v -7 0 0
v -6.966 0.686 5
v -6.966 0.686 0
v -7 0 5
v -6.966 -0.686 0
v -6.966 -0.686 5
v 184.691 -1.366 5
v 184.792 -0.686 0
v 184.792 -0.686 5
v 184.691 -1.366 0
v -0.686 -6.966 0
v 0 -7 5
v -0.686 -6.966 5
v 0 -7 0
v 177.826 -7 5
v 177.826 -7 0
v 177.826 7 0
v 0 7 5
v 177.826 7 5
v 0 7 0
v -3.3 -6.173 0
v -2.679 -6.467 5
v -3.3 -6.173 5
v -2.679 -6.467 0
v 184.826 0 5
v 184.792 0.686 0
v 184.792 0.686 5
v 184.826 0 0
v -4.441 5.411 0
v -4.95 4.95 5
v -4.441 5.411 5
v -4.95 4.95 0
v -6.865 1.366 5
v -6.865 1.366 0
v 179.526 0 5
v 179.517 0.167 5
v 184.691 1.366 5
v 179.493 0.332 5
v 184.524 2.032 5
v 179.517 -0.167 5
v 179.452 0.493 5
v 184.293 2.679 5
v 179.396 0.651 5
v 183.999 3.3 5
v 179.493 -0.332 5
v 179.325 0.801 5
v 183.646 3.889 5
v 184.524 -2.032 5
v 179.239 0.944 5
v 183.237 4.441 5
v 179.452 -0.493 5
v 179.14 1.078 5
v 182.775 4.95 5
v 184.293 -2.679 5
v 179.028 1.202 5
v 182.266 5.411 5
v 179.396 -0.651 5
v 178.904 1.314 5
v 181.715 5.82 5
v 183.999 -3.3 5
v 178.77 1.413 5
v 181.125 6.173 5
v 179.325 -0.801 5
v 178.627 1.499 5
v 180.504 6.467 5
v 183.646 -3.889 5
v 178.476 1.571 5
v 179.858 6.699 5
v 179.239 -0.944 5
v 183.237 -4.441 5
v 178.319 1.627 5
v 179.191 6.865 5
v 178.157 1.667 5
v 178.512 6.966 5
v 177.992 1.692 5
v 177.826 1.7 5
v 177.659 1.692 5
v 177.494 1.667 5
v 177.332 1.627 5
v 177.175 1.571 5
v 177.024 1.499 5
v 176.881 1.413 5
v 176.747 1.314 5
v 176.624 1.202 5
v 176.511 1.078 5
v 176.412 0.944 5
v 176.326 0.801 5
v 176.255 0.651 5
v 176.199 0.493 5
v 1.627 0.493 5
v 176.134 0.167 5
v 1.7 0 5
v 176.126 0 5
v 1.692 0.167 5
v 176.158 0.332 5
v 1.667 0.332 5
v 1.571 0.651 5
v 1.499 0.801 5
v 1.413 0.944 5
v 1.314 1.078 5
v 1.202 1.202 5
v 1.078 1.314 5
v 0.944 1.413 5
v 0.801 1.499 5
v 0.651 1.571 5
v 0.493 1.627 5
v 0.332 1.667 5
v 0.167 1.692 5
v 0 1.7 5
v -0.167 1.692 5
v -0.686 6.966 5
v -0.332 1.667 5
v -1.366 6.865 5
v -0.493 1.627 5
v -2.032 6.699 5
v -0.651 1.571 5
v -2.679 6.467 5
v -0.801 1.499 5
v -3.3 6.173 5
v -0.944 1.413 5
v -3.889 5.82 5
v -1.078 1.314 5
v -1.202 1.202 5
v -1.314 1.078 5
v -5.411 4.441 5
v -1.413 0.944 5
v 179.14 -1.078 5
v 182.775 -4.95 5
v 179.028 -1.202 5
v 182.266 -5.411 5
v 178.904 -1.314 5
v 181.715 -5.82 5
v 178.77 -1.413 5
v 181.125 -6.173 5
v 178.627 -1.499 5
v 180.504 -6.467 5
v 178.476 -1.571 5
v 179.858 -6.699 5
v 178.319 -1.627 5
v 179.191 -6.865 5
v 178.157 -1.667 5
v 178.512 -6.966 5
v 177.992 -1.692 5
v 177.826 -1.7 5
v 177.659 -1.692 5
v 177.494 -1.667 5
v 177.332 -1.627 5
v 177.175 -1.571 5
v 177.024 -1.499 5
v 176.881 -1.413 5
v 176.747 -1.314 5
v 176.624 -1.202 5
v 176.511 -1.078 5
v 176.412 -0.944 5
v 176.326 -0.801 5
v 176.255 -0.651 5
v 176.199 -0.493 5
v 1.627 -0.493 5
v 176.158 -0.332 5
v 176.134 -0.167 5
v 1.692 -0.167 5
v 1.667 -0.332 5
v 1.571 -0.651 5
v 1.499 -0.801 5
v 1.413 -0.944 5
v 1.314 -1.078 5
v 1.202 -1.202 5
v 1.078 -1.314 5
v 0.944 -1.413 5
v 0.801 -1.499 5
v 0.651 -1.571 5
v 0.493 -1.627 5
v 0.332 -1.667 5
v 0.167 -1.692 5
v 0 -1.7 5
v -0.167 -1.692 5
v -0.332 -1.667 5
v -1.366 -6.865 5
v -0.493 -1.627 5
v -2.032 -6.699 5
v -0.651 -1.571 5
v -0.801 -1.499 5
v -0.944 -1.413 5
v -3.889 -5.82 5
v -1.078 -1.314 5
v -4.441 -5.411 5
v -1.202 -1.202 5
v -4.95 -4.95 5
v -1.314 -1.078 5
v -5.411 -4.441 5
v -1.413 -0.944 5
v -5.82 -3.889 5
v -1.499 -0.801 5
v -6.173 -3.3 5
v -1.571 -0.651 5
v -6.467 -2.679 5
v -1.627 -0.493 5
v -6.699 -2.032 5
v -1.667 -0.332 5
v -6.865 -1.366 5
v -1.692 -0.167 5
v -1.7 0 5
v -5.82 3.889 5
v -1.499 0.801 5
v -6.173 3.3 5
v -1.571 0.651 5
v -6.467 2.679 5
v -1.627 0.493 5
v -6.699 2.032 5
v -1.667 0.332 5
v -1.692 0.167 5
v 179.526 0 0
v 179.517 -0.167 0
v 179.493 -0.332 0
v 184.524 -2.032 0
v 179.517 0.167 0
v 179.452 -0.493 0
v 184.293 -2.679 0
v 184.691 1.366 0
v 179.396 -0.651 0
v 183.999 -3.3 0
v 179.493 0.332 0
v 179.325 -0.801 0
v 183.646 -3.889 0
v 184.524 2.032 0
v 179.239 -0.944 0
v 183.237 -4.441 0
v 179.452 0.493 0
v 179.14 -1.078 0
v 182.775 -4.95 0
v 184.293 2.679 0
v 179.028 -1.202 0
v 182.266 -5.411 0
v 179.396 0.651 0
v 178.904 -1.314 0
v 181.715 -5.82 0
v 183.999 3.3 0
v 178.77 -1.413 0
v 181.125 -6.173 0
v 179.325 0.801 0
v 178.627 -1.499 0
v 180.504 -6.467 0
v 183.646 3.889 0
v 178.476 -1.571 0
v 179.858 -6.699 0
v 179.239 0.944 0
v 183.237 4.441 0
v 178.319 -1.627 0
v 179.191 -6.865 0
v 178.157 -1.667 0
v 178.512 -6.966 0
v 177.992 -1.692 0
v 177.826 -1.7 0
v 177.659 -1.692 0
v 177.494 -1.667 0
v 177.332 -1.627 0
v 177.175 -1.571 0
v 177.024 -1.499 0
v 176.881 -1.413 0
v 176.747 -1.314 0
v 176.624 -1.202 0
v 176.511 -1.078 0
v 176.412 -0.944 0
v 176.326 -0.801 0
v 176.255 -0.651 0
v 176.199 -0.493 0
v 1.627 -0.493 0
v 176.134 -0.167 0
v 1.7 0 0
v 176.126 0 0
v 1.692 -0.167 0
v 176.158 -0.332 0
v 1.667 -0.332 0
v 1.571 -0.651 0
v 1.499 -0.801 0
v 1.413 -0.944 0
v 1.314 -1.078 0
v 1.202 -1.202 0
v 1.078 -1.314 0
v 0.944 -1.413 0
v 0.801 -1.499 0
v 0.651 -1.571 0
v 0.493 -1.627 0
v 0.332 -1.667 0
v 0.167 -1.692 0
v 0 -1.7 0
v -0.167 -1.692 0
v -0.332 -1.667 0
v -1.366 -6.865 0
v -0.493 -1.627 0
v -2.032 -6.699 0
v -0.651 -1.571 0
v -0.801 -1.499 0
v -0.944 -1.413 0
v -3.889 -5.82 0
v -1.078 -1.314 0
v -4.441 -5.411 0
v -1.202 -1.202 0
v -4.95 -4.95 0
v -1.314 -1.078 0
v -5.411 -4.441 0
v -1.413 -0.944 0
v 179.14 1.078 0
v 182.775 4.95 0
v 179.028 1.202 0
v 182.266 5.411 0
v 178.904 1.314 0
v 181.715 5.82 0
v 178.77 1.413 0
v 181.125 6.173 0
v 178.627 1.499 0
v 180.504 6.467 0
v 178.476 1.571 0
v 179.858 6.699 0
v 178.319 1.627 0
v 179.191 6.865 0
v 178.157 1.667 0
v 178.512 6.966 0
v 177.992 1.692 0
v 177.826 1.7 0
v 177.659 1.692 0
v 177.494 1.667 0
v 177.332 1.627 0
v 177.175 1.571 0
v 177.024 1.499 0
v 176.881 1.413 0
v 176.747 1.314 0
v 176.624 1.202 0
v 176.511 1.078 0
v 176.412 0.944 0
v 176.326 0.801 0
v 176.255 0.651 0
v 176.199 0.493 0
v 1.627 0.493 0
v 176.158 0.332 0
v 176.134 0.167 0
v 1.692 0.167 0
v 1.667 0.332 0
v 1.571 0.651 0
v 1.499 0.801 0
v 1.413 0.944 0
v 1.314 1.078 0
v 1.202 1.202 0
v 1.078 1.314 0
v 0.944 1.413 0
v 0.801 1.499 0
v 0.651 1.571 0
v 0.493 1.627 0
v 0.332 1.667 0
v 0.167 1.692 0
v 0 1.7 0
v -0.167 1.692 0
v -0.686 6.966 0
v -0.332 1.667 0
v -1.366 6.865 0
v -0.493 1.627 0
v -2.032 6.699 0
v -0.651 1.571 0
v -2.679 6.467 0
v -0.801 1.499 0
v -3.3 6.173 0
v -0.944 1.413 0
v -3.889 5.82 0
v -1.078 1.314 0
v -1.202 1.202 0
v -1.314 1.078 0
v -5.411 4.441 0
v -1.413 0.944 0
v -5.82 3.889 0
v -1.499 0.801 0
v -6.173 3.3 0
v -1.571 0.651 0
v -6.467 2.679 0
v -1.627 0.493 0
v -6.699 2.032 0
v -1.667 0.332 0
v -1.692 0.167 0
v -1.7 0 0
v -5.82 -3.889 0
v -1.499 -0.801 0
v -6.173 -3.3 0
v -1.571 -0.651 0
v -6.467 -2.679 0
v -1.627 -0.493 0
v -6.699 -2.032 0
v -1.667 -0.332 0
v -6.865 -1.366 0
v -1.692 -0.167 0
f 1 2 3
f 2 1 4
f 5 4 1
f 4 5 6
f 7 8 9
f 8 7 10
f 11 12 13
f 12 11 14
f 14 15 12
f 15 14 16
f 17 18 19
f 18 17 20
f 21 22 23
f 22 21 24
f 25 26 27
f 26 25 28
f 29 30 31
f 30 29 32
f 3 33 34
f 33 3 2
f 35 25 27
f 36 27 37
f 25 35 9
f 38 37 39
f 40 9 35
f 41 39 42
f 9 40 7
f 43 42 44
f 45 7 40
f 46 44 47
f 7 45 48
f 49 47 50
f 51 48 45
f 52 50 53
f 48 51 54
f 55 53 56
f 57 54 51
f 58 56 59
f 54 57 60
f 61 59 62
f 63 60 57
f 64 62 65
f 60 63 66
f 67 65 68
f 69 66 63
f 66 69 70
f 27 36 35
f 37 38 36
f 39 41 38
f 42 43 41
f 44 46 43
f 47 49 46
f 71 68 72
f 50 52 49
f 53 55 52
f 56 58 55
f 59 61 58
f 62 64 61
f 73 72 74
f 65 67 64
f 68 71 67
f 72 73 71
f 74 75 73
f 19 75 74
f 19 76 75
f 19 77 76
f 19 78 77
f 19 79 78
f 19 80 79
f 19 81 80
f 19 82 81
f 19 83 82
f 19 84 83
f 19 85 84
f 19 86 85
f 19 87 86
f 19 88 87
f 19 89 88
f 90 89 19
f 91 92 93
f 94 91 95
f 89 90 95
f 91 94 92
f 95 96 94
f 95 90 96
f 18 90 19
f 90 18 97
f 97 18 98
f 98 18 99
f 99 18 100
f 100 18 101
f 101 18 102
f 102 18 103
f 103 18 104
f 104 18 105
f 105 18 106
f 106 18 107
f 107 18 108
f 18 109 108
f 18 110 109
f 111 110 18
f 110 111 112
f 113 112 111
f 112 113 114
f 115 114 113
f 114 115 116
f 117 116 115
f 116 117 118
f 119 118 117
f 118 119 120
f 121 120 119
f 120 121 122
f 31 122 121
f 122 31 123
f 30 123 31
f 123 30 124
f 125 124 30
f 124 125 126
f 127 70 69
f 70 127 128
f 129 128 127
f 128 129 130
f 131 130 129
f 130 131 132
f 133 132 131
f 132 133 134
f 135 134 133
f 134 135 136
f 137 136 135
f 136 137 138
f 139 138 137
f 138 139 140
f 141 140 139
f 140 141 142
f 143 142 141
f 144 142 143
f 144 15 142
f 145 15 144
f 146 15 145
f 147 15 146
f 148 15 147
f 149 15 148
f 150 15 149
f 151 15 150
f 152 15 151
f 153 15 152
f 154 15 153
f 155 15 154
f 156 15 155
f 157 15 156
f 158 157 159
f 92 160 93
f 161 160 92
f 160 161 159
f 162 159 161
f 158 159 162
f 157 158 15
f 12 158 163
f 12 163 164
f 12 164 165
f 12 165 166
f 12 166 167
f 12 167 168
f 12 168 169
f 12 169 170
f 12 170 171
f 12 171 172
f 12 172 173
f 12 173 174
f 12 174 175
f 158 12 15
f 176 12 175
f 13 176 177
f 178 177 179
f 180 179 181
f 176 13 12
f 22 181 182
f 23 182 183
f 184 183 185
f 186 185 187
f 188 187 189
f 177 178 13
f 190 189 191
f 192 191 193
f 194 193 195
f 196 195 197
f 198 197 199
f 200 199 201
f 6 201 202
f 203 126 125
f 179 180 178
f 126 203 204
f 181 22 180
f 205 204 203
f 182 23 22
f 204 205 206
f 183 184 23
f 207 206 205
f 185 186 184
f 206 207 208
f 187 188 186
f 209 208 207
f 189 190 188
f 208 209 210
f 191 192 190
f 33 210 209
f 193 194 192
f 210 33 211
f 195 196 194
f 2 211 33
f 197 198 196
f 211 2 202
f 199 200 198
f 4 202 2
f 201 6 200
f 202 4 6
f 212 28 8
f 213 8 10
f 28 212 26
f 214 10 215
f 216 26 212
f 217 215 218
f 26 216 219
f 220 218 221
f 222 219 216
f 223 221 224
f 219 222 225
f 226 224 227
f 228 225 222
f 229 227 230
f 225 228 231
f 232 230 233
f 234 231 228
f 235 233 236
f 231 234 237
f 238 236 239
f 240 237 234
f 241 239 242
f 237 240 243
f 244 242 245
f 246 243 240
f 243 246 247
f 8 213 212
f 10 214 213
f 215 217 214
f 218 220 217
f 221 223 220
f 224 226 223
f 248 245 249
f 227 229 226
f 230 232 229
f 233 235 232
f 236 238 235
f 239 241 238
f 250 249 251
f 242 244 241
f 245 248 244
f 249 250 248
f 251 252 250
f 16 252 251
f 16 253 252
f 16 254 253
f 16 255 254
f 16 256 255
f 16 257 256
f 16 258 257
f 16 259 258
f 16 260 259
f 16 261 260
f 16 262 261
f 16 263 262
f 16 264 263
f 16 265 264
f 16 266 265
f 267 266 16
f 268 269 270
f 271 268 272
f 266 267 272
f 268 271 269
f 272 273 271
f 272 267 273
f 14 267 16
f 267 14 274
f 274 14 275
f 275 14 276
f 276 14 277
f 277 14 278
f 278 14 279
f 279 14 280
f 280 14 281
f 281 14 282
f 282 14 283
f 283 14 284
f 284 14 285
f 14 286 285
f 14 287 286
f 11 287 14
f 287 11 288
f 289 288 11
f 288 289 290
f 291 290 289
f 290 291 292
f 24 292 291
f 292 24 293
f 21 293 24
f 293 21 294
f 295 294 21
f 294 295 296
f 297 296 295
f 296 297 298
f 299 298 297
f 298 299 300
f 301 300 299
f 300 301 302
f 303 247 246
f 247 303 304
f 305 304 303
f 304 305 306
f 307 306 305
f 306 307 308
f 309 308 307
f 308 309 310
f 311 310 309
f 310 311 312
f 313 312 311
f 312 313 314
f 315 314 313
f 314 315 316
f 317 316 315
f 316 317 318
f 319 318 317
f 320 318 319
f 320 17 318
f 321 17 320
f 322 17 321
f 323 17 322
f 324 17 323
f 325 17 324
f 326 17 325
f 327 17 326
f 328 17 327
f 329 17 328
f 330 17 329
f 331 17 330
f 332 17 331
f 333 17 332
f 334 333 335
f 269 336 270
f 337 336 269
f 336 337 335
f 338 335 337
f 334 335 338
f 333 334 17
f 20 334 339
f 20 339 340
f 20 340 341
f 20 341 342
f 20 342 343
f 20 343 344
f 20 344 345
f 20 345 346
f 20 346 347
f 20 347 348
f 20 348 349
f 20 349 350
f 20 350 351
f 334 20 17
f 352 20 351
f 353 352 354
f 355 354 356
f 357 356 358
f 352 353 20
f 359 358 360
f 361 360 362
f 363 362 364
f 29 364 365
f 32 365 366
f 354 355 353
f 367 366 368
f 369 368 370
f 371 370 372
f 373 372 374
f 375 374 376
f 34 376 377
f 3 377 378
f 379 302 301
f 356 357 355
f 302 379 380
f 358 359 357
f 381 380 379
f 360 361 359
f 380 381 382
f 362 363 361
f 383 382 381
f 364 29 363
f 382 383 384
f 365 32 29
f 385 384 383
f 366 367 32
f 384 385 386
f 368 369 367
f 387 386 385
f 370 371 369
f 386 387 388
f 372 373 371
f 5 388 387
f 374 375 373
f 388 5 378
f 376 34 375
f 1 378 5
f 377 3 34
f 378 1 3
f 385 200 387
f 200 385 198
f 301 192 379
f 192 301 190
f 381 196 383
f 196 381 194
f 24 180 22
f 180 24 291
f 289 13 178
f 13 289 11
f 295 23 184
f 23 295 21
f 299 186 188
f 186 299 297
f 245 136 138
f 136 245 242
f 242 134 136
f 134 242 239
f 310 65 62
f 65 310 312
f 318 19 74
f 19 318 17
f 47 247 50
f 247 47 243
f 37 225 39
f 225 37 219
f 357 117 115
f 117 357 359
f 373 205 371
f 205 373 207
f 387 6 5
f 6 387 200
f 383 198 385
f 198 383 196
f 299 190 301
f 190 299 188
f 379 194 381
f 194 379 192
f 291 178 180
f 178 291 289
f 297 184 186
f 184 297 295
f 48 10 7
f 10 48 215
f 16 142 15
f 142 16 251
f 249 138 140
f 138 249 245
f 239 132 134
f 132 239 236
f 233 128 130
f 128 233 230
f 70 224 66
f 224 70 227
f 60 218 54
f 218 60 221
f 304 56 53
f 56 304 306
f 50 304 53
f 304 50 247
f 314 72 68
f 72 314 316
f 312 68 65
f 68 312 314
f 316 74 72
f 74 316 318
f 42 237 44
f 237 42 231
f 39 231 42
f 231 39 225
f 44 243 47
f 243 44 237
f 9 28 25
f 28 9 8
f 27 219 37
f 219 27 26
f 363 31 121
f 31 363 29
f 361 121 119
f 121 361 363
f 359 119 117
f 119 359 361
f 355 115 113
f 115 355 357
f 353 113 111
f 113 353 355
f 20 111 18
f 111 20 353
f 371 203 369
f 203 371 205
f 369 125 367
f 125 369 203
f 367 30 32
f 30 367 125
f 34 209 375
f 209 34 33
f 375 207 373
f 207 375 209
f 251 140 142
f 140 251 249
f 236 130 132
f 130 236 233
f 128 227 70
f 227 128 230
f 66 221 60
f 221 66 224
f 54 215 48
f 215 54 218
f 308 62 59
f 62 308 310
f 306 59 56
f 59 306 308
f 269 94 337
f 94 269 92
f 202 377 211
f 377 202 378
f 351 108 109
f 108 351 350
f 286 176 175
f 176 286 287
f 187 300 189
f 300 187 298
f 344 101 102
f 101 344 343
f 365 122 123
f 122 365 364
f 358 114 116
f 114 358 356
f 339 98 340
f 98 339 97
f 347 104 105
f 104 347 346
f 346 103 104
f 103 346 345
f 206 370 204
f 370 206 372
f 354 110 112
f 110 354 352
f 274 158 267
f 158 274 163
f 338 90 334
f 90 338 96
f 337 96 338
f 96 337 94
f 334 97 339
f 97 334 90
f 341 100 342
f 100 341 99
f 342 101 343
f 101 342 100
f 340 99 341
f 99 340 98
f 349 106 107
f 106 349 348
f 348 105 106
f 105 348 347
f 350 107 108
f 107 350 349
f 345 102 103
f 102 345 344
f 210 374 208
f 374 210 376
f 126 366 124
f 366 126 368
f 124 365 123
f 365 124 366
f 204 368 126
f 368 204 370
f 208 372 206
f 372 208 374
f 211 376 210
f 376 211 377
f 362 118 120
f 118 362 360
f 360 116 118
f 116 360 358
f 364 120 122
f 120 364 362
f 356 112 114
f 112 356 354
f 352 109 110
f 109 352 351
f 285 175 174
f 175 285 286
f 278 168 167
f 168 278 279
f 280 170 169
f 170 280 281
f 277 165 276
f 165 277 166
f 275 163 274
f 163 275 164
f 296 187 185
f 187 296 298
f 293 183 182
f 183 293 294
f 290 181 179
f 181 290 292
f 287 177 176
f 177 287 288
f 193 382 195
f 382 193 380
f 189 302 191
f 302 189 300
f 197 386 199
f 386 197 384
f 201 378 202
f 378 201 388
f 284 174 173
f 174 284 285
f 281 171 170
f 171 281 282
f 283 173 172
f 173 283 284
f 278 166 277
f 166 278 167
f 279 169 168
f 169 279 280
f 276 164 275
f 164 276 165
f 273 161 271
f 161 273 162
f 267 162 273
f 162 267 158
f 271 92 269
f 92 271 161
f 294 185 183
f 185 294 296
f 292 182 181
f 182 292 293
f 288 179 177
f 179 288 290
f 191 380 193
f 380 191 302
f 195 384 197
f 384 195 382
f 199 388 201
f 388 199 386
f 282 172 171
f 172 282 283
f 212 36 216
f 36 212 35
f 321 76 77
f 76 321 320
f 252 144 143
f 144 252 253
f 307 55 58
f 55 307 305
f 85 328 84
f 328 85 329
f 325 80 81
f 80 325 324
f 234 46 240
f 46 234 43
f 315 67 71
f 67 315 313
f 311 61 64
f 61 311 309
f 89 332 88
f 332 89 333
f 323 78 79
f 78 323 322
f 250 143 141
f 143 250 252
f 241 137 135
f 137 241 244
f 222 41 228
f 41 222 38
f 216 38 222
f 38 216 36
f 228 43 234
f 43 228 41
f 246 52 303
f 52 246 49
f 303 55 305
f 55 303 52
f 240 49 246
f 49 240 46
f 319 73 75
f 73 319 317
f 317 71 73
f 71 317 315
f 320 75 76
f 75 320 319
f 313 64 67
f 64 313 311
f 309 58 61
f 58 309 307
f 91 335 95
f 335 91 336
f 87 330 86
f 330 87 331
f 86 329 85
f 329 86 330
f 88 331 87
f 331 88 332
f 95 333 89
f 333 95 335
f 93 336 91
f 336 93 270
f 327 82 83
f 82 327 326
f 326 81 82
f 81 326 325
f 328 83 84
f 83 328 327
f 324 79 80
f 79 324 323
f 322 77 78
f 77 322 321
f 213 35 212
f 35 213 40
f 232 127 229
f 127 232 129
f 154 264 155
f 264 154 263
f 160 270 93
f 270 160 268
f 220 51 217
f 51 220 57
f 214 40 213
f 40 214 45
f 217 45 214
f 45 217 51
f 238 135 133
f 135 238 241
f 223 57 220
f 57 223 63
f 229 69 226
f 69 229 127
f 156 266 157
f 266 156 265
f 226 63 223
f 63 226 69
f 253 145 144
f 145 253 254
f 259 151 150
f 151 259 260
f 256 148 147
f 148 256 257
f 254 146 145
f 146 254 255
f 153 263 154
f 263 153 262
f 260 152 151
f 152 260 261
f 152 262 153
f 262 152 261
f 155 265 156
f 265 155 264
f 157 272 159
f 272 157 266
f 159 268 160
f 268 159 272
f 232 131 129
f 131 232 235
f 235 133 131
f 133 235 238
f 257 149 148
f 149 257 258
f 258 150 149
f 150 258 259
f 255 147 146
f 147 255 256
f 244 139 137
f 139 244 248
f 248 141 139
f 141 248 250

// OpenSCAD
// =========================================================
// STRUT — diagonal brace, PRINT 2 OFF
// Runs from the box's upper left/right standoff down to the
// eyelet tab at the catwalk's tip.
//
// Drawn flat in the XY plane for printing: lay it on the bed as
// modelled, no supports, no rotation needed.
//
// Hole-to-hole span is derived from the box and catwalk numbers
// below, so if either part changes, update them here to match.
// =========================================================

$fn = 64;
eps = 0.01;

// --- Geometry it has to span (must match box.scad / catwalk.scad) ---
outer_y = 81.13;      // box.scad
so_y    = outer_y - 12.0;   // standoff height on the box
so_z    = 10.0;             // standoff position along the tube axis

pad_t   = 6.0;        // box.scad
plate_t = 9.0;        // catwalk.scad
arm_len = 158.0;      // catwalk.scad
plate_ymid = -pad_t - plate_t / 2;
eye_z   = -(arm_len - 9.0);

// --- Strap ---
strap_w = 14.0;       // width
strap_t = 5.0;        // thickness
strap_end = 9.0;      // material beyond each hole centre
hole_d  = 3.4;        // M3 clearance

span = sqrt(pow(plate_ymid - so_y, 2) + pow(eye_z - so_z, 2));

echo("hole-to-hole span", span);
echo("strap overall length", span + strap_end * 2);
echo("bed check: needs <= 200mm on the long axis");

module strap() {
    difference() {
        hull() {
            cylinder(h = strap_t, d = strap_w);
            translate([span, 0, 0]) cylinder(h = strap_t, d = strap_w);
        }
        translate([0, 0, -eps]) cylinder(h = strap_t + eps * 2, d = hole_d);
        translate([span, 0, -eps]) cylinder(h = strap_t + eps * 2, d = hole_d);
    }
}

strap();
